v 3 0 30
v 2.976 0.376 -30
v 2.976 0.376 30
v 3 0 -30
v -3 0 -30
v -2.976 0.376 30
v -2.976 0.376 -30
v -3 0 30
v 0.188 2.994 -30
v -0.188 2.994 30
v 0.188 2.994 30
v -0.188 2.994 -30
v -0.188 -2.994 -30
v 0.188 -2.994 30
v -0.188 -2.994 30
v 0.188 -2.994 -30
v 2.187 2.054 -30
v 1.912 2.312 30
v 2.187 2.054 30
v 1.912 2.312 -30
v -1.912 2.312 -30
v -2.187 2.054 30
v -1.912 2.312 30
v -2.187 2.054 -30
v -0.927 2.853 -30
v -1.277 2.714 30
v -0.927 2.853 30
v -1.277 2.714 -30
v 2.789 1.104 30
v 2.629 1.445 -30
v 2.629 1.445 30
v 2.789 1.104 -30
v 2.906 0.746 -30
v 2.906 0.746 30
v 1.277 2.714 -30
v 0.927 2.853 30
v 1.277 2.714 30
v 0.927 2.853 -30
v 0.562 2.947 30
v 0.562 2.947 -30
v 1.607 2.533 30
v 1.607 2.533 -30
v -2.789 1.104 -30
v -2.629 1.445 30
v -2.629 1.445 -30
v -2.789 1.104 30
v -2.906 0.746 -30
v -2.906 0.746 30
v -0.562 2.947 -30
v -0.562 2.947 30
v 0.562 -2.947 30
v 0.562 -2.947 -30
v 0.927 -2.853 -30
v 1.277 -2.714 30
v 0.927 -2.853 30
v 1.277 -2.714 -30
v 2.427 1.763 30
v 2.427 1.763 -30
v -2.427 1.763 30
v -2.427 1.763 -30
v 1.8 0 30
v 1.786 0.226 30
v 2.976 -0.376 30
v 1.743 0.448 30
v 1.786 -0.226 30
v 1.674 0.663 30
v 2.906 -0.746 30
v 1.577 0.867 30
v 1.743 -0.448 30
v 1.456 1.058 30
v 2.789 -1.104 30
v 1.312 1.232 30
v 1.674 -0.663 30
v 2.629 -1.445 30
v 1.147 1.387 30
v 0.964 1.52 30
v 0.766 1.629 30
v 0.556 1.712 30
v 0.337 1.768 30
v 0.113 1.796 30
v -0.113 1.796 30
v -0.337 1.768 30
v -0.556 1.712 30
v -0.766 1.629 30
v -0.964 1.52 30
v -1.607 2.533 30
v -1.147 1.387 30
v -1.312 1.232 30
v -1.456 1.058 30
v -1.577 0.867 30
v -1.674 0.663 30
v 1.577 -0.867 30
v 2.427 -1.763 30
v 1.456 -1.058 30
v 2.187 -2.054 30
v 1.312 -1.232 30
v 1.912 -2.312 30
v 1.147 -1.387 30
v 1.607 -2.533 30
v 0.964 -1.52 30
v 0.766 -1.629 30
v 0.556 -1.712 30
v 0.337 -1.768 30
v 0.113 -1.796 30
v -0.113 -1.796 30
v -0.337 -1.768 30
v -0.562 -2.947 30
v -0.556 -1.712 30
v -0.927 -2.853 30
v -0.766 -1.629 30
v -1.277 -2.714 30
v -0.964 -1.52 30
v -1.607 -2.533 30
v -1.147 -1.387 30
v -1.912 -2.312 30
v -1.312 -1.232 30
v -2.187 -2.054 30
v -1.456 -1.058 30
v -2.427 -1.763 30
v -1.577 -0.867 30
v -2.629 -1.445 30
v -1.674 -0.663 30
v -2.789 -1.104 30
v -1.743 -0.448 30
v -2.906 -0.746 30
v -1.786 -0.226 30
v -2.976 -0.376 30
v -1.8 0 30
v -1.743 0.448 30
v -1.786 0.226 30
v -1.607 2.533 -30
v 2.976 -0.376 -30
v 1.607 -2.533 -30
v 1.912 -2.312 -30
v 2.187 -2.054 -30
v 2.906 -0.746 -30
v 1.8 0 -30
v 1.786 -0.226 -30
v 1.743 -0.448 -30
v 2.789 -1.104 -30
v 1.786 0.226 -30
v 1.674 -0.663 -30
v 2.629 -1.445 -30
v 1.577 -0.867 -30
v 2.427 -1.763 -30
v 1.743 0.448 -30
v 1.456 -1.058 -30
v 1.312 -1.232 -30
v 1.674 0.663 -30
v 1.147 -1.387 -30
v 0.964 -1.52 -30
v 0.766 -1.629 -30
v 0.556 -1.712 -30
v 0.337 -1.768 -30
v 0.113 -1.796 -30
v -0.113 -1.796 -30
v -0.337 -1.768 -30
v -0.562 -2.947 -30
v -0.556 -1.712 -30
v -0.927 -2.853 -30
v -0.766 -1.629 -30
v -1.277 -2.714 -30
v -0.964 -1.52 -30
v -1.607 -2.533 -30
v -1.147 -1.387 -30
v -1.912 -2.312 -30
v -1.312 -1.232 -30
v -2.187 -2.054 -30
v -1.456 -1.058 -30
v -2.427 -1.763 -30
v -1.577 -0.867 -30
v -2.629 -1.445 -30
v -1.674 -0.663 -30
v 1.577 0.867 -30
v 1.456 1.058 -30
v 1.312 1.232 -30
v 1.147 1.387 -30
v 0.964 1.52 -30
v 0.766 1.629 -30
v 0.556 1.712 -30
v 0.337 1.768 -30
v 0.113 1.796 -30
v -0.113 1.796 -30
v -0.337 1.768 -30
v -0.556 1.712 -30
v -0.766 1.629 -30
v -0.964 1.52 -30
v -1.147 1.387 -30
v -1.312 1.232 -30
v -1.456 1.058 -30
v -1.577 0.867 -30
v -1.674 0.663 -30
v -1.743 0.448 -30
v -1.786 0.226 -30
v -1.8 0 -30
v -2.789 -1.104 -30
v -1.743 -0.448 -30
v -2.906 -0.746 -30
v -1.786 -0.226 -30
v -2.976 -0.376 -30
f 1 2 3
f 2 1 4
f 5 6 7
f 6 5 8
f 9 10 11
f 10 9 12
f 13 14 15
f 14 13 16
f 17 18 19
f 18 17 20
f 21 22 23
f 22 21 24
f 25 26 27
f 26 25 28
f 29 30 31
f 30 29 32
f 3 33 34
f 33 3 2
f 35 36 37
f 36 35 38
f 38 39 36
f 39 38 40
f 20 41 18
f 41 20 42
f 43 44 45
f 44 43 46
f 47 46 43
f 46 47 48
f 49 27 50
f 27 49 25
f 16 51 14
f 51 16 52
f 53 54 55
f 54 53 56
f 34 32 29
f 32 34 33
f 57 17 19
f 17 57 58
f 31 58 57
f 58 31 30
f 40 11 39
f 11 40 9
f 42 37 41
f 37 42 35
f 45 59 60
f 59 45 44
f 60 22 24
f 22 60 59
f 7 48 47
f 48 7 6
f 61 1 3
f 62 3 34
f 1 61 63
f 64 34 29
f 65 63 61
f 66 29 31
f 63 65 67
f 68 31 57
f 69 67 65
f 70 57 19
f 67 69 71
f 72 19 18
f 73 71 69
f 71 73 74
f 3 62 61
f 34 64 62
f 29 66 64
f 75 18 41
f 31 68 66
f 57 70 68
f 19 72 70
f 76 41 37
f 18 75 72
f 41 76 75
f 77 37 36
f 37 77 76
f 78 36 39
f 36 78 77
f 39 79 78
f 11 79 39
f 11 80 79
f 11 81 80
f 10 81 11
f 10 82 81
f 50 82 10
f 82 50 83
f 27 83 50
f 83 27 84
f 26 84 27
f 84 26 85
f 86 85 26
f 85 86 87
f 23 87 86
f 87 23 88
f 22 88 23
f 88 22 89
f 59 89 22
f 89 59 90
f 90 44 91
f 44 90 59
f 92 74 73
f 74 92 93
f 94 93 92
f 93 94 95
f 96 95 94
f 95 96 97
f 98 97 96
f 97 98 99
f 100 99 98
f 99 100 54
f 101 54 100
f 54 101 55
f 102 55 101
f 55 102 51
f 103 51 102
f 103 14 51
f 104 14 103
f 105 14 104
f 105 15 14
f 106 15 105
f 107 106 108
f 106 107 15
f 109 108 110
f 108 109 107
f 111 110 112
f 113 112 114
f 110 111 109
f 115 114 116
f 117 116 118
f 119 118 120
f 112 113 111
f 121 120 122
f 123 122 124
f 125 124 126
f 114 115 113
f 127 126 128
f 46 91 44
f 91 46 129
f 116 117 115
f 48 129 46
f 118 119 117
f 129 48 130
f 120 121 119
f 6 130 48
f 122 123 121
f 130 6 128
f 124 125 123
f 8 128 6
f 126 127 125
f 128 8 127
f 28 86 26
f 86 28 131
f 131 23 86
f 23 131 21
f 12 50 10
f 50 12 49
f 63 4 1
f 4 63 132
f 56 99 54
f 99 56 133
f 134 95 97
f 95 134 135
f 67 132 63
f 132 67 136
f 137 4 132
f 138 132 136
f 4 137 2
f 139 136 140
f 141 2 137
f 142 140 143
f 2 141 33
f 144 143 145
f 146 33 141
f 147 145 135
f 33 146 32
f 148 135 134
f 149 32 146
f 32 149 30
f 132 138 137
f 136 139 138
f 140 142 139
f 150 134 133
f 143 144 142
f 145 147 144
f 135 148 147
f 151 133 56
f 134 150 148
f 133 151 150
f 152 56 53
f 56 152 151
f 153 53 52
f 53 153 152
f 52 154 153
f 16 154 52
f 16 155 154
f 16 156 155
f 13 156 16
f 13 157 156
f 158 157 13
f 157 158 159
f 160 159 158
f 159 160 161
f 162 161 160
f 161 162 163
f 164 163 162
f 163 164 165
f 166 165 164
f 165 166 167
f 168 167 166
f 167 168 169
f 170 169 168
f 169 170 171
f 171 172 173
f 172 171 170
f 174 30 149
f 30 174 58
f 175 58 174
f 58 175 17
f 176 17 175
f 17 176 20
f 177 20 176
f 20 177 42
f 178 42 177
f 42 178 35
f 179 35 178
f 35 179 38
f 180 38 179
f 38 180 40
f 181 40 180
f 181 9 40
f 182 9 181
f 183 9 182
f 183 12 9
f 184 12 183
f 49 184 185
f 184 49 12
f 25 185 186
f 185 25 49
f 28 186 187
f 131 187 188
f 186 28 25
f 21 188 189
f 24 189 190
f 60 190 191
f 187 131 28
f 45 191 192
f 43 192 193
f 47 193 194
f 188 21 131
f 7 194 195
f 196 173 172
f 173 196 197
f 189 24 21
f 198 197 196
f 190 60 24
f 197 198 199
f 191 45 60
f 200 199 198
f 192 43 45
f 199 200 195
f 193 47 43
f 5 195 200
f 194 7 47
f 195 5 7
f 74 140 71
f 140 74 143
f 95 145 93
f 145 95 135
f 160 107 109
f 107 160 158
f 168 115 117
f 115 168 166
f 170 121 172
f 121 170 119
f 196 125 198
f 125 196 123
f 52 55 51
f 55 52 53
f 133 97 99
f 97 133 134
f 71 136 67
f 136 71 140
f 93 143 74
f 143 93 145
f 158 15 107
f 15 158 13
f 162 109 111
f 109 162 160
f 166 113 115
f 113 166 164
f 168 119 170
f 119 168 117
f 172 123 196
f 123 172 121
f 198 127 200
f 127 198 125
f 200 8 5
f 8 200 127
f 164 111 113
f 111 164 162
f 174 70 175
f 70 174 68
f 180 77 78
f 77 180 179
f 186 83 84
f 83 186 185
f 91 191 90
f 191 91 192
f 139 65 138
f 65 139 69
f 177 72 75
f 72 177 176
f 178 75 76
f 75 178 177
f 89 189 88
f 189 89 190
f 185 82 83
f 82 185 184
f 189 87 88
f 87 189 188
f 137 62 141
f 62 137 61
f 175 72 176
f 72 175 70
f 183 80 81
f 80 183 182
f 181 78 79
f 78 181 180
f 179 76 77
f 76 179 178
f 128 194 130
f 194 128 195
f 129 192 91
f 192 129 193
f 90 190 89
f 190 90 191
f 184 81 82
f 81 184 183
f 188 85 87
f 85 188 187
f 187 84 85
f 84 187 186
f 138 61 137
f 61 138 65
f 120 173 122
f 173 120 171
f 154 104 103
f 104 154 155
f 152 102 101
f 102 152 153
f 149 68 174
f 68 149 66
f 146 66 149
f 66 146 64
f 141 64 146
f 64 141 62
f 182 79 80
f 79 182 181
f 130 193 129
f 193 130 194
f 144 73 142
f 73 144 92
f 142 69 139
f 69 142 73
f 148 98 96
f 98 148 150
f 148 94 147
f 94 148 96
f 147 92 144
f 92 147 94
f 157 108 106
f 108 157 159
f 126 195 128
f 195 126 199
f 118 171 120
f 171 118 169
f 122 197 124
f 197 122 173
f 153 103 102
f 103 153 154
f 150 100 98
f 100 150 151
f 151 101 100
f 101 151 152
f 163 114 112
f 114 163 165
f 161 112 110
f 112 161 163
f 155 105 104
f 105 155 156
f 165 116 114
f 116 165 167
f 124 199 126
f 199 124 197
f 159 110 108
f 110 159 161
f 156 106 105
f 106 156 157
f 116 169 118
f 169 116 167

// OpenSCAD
$fn = 50;


difference() {
	union() {
		translate(v = [0, 0, -30.0000000000]) {
			cylinder(h = 60, r = 3.0000000000);
		}
	}
	union() {
		translate(v = [0, 0, -100.0000000000]) {
			cylinder(h = 200, r = 1.8000000000);
		}
	}
}
